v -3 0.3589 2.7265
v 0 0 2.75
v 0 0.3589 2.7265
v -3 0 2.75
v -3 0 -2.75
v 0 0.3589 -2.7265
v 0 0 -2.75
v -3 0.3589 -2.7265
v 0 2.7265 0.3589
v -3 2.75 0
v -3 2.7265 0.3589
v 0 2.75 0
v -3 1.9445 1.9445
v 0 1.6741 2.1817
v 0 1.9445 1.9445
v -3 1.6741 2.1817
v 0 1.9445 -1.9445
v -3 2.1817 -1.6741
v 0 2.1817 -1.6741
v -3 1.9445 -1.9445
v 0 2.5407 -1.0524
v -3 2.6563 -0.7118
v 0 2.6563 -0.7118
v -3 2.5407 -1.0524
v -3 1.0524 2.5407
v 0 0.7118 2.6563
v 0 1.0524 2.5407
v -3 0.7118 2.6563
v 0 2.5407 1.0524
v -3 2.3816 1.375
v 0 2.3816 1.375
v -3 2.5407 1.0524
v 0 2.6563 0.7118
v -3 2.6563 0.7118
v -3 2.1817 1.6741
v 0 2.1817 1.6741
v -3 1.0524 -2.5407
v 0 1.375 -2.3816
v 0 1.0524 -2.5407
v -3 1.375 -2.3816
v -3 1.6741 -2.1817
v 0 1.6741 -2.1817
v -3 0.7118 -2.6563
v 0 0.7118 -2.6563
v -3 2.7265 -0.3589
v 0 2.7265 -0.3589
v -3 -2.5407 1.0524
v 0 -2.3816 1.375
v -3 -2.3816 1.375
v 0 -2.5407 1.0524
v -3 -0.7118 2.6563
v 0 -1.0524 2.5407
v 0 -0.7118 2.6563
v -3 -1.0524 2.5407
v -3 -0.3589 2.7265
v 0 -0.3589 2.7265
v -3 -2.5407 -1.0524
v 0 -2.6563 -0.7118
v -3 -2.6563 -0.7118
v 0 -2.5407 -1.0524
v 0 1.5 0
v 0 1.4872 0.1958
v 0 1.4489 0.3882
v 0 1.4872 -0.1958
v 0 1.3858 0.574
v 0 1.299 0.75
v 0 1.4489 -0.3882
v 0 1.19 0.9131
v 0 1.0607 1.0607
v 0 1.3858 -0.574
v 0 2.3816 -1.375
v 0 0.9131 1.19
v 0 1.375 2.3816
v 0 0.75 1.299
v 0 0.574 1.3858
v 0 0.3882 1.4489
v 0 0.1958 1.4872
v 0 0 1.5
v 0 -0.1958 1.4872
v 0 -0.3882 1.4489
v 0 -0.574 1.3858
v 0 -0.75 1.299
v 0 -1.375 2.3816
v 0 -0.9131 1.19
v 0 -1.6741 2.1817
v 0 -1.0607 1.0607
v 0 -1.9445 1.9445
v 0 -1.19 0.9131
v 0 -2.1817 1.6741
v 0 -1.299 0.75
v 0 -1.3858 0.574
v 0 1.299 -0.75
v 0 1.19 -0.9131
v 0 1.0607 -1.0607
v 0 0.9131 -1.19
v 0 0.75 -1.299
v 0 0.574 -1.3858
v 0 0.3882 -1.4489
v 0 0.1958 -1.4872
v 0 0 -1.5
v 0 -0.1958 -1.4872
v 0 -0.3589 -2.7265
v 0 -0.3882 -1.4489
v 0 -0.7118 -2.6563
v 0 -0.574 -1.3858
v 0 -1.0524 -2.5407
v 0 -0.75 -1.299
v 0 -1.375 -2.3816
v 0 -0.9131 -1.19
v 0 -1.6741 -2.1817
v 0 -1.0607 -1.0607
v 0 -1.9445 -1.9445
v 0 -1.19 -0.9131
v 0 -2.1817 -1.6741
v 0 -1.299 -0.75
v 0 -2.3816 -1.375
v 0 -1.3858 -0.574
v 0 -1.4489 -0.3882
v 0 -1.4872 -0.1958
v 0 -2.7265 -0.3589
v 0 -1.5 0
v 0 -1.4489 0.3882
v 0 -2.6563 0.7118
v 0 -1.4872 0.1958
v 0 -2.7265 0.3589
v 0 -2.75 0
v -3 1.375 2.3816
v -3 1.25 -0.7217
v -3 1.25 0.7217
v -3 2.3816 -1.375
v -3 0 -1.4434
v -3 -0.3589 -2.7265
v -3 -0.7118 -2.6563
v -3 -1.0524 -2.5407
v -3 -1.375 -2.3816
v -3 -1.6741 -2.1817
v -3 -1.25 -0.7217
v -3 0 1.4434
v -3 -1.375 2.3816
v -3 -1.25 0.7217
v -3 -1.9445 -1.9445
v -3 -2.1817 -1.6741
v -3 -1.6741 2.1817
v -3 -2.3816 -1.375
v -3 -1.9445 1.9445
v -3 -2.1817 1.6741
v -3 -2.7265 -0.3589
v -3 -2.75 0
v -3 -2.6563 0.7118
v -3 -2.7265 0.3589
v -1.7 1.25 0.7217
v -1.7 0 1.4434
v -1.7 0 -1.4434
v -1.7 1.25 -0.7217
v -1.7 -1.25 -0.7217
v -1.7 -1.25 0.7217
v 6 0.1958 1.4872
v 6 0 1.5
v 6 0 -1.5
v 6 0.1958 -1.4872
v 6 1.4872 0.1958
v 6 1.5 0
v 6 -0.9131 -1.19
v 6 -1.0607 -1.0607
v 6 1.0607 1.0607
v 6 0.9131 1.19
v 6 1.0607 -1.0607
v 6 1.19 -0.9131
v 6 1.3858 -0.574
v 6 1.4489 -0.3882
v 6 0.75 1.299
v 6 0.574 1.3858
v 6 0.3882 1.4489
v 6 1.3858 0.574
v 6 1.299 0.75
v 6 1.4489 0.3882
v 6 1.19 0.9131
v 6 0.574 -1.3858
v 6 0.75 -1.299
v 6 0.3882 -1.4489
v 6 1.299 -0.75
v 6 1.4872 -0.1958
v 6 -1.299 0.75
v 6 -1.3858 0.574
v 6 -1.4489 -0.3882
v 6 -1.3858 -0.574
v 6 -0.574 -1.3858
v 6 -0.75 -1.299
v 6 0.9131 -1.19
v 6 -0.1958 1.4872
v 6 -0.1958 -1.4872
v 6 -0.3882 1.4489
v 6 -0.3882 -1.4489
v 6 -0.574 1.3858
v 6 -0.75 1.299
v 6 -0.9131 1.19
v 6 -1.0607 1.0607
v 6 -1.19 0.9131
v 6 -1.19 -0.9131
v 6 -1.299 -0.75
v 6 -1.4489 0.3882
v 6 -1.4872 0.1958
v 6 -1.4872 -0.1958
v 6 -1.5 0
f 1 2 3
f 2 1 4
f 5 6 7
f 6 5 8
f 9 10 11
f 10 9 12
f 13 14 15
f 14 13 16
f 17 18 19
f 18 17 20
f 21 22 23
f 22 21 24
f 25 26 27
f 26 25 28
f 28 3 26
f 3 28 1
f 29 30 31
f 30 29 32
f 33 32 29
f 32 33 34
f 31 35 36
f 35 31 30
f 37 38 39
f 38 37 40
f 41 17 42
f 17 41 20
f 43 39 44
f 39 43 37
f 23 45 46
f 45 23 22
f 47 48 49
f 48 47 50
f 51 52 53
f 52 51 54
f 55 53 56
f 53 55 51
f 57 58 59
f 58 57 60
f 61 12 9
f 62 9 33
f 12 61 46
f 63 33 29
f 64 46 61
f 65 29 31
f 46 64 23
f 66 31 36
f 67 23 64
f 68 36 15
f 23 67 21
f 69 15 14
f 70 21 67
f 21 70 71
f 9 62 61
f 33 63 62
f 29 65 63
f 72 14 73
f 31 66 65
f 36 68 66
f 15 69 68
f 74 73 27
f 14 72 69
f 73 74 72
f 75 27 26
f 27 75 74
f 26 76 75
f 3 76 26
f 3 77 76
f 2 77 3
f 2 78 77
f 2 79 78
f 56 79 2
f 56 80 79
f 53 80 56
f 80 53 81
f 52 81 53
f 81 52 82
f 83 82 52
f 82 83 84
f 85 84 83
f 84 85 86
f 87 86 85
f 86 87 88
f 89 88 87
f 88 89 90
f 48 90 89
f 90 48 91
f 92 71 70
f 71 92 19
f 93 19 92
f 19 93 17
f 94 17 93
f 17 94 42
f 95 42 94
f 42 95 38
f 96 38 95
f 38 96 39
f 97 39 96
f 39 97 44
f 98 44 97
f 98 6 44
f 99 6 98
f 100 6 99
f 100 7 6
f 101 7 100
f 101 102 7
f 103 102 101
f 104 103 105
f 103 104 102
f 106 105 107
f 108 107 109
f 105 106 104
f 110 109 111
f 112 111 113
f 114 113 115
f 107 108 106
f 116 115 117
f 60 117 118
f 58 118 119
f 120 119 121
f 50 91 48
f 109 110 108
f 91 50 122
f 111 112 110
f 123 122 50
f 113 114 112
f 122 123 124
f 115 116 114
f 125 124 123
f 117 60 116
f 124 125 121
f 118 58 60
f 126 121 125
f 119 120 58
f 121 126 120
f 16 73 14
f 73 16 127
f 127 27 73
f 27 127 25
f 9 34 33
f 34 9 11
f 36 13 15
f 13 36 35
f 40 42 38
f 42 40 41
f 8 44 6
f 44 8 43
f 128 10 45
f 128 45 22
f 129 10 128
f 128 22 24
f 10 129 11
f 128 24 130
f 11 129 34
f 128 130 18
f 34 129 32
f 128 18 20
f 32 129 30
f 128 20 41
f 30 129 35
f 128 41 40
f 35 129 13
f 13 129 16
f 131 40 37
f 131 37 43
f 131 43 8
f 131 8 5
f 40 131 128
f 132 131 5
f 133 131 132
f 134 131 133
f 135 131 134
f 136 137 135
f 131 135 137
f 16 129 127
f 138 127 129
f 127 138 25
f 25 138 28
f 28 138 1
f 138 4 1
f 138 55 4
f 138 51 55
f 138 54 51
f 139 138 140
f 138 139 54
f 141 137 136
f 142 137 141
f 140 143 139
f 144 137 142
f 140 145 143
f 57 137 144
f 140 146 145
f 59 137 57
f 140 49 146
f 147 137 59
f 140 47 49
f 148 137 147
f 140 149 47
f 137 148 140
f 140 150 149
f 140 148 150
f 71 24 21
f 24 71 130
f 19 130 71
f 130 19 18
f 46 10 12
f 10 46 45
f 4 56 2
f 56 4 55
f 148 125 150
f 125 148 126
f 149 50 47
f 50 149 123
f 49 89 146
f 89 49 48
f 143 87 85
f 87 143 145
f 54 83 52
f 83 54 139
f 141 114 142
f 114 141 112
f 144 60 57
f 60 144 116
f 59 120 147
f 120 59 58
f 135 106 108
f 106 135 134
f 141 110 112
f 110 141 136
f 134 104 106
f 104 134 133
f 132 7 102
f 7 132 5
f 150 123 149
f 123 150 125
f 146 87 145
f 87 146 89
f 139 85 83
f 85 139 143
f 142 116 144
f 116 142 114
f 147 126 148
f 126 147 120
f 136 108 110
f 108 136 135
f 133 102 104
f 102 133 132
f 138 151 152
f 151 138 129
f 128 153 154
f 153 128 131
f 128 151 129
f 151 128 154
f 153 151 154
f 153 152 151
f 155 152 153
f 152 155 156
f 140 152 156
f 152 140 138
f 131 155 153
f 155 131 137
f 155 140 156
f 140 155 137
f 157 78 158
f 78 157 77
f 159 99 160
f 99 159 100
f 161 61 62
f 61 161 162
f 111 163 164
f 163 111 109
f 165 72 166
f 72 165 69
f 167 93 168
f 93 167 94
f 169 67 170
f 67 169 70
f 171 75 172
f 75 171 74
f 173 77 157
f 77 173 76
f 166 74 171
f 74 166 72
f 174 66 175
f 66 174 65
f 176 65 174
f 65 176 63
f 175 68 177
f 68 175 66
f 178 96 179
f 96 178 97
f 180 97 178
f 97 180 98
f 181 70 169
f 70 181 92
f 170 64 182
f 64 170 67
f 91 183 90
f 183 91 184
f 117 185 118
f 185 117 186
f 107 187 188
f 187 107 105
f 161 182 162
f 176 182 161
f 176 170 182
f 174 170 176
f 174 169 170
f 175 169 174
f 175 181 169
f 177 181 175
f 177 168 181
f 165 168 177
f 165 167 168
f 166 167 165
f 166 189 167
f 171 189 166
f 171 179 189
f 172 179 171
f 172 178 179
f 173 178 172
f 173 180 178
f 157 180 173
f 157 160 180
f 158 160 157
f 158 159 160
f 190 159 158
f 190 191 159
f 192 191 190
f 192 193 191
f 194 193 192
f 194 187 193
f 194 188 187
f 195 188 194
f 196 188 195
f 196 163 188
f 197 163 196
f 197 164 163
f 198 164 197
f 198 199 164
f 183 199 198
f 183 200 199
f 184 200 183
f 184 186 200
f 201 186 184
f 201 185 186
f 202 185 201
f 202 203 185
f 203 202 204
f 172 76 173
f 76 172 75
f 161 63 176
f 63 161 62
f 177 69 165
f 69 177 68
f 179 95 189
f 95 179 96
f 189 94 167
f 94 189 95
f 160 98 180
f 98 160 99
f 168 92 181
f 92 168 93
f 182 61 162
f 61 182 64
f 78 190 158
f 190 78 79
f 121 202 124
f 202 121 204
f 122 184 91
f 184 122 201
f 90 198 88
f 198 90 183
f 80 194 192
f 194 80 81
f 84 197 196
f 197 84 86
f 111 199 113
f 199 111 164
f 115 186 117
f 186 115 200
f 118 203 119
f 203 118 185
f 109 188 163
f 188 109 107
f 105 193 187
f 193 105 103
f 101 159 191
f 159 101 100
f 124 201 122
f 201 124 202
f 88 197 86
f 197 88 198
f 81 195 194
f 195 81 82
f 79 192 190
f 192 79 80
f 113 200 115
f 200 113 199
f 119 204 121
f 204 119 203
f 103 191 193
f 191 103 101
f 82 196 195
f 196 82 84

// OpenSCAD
// file: ../../lib/nutsnbolts/data-access.scad
// Norm Nuts and Bolts - a OpenSCAD library
// Copyright (C) 2012  Johannes Kneer

// This program is free software: you can redistribute it and/or modify
// it under the terms of the GNU General Public License as published by
// the Free Software Foundation, either version 3 of the License, or
// (at your option) any later version.

// This program is distributed in the hope that it will be useful,
// but WITHOUT ANY WARRANTY; without even the implied warranty of
// MERCHANTABILITY or FITNESS FOR A PARTICULAR PURPOSE.  See the
// GNU General Public License for more details.

// You should have received a copy of the GNU General Public License
// along with this program.  If not, see <http://www.gnu.org/licenses/>.


// DATABASE ACCESS FUNCTIONS AND CONSTANTS



// == CONSTANTS ==

// screw table access keys
_NB_S_DESC            = 0;
_NB_S_FAMKEY			    = 1;
_NB_S_LENGTH          = 2;
_NB_S_NOTHREAD_LENGTH = 3;

_NB_F_DESC			      = 0;
_NB_F_OUTER_DIA       = 1;
_NB_F_INNER_DIA       = 2;
_NB_F_LEAD            = 3;
_NB_F_KEY             = 4;
_NB_F_KEY_DEPTH       = 5;
_NB_F_HEAD_HEIGHT     = 6;
_NB_F_HEAD_DIA        = 7;
_NB_F_NUT_KEY         = 8;
_NB_F_NUT_HEIGHT      = 9;
_NB_F_PITCH_FINE      = 10;
_NB_F_PITCH_MEDIUM    = 11;
_NB_F_PITCH_COARSE    = 12;


// == FUNCTIONS ==

// _get_screw("descriptor")   with descriptor = M8x25
//   find the line for a general object in the data matrix

function _get_screw(n) = data_screw[search([n], data_screw)[0]];
function _get_screw_fam(n) = data_screw_fam[search([_get_screw(n)[_NB_S_FAMKEY]], data_screw_fam)[0]];

function _get_fam(n) = data_screw_fam[search([n], data_screw_fam)[0]];


// _get_XXXXX("descriptor") functions
// find a single property in the database

function _get_desc(n)        = _get_screw(n)[_NB_S_DESC];
function _get_famkey(n)         = _get_screw(n)[_NB_S_FAMKEY];
function _get_length(n)      = _get_screw(n)[_NB_S_LENGTH];
function _get_nt_length(n)   = _get_screw(n)[_NB_S_NOTHREAD_LENGTH];

function _get_outer_dia(n)   = _get_screw_fam(n)[_NB_F_OUTER_DIA];
function _get_inner_dia(n)   = _get_screw_fam(n)[_NB_F_INNER_DIA];
function _get_lead(n)        = _get_screw_fam(n)[_NB_F_LEAD];
function _get_head_height(n) = _get_screw_fam(n)[_NB_F_HEAD_HEIGHT];
function _get_head_dia(n)    = _get_screw_fam(n)[_NB_F_HEAD_DIA];
function _get_nut_key(n)     = _get_screw_fam(n)[_NB_F_NUT_KEY];
function _get_nut_height(n)  = _get_screw_fam(n)[_NB_F_NUT_HEIGHT];
function _get_fine_pitch(n)  = _get_screw_fam(n)[_NB_F_PITCH_FINE];
function _get_medium_pitch(n)  = _get_screw_fam(n)[_NB_F_PITCH_MEDIUM];
function _get_coarse_pitch(n)  = _get_screw_fam(n)[_NB_F_PITCH_COARSE];
// main file
/**********************************************************************************************************************
 **
 ** parts/vitamins/screw_M3x6.scad
 **
 ** This file renders a screw of the dimensions specified by the file name.
 **
 **********************************************************************************************************************/

include <../../lib/nutsnbolts/cyl_head_bolt.scad>;

$fn = 48;
rotate([0, -90, 0])
	screw("M3x6"); 
